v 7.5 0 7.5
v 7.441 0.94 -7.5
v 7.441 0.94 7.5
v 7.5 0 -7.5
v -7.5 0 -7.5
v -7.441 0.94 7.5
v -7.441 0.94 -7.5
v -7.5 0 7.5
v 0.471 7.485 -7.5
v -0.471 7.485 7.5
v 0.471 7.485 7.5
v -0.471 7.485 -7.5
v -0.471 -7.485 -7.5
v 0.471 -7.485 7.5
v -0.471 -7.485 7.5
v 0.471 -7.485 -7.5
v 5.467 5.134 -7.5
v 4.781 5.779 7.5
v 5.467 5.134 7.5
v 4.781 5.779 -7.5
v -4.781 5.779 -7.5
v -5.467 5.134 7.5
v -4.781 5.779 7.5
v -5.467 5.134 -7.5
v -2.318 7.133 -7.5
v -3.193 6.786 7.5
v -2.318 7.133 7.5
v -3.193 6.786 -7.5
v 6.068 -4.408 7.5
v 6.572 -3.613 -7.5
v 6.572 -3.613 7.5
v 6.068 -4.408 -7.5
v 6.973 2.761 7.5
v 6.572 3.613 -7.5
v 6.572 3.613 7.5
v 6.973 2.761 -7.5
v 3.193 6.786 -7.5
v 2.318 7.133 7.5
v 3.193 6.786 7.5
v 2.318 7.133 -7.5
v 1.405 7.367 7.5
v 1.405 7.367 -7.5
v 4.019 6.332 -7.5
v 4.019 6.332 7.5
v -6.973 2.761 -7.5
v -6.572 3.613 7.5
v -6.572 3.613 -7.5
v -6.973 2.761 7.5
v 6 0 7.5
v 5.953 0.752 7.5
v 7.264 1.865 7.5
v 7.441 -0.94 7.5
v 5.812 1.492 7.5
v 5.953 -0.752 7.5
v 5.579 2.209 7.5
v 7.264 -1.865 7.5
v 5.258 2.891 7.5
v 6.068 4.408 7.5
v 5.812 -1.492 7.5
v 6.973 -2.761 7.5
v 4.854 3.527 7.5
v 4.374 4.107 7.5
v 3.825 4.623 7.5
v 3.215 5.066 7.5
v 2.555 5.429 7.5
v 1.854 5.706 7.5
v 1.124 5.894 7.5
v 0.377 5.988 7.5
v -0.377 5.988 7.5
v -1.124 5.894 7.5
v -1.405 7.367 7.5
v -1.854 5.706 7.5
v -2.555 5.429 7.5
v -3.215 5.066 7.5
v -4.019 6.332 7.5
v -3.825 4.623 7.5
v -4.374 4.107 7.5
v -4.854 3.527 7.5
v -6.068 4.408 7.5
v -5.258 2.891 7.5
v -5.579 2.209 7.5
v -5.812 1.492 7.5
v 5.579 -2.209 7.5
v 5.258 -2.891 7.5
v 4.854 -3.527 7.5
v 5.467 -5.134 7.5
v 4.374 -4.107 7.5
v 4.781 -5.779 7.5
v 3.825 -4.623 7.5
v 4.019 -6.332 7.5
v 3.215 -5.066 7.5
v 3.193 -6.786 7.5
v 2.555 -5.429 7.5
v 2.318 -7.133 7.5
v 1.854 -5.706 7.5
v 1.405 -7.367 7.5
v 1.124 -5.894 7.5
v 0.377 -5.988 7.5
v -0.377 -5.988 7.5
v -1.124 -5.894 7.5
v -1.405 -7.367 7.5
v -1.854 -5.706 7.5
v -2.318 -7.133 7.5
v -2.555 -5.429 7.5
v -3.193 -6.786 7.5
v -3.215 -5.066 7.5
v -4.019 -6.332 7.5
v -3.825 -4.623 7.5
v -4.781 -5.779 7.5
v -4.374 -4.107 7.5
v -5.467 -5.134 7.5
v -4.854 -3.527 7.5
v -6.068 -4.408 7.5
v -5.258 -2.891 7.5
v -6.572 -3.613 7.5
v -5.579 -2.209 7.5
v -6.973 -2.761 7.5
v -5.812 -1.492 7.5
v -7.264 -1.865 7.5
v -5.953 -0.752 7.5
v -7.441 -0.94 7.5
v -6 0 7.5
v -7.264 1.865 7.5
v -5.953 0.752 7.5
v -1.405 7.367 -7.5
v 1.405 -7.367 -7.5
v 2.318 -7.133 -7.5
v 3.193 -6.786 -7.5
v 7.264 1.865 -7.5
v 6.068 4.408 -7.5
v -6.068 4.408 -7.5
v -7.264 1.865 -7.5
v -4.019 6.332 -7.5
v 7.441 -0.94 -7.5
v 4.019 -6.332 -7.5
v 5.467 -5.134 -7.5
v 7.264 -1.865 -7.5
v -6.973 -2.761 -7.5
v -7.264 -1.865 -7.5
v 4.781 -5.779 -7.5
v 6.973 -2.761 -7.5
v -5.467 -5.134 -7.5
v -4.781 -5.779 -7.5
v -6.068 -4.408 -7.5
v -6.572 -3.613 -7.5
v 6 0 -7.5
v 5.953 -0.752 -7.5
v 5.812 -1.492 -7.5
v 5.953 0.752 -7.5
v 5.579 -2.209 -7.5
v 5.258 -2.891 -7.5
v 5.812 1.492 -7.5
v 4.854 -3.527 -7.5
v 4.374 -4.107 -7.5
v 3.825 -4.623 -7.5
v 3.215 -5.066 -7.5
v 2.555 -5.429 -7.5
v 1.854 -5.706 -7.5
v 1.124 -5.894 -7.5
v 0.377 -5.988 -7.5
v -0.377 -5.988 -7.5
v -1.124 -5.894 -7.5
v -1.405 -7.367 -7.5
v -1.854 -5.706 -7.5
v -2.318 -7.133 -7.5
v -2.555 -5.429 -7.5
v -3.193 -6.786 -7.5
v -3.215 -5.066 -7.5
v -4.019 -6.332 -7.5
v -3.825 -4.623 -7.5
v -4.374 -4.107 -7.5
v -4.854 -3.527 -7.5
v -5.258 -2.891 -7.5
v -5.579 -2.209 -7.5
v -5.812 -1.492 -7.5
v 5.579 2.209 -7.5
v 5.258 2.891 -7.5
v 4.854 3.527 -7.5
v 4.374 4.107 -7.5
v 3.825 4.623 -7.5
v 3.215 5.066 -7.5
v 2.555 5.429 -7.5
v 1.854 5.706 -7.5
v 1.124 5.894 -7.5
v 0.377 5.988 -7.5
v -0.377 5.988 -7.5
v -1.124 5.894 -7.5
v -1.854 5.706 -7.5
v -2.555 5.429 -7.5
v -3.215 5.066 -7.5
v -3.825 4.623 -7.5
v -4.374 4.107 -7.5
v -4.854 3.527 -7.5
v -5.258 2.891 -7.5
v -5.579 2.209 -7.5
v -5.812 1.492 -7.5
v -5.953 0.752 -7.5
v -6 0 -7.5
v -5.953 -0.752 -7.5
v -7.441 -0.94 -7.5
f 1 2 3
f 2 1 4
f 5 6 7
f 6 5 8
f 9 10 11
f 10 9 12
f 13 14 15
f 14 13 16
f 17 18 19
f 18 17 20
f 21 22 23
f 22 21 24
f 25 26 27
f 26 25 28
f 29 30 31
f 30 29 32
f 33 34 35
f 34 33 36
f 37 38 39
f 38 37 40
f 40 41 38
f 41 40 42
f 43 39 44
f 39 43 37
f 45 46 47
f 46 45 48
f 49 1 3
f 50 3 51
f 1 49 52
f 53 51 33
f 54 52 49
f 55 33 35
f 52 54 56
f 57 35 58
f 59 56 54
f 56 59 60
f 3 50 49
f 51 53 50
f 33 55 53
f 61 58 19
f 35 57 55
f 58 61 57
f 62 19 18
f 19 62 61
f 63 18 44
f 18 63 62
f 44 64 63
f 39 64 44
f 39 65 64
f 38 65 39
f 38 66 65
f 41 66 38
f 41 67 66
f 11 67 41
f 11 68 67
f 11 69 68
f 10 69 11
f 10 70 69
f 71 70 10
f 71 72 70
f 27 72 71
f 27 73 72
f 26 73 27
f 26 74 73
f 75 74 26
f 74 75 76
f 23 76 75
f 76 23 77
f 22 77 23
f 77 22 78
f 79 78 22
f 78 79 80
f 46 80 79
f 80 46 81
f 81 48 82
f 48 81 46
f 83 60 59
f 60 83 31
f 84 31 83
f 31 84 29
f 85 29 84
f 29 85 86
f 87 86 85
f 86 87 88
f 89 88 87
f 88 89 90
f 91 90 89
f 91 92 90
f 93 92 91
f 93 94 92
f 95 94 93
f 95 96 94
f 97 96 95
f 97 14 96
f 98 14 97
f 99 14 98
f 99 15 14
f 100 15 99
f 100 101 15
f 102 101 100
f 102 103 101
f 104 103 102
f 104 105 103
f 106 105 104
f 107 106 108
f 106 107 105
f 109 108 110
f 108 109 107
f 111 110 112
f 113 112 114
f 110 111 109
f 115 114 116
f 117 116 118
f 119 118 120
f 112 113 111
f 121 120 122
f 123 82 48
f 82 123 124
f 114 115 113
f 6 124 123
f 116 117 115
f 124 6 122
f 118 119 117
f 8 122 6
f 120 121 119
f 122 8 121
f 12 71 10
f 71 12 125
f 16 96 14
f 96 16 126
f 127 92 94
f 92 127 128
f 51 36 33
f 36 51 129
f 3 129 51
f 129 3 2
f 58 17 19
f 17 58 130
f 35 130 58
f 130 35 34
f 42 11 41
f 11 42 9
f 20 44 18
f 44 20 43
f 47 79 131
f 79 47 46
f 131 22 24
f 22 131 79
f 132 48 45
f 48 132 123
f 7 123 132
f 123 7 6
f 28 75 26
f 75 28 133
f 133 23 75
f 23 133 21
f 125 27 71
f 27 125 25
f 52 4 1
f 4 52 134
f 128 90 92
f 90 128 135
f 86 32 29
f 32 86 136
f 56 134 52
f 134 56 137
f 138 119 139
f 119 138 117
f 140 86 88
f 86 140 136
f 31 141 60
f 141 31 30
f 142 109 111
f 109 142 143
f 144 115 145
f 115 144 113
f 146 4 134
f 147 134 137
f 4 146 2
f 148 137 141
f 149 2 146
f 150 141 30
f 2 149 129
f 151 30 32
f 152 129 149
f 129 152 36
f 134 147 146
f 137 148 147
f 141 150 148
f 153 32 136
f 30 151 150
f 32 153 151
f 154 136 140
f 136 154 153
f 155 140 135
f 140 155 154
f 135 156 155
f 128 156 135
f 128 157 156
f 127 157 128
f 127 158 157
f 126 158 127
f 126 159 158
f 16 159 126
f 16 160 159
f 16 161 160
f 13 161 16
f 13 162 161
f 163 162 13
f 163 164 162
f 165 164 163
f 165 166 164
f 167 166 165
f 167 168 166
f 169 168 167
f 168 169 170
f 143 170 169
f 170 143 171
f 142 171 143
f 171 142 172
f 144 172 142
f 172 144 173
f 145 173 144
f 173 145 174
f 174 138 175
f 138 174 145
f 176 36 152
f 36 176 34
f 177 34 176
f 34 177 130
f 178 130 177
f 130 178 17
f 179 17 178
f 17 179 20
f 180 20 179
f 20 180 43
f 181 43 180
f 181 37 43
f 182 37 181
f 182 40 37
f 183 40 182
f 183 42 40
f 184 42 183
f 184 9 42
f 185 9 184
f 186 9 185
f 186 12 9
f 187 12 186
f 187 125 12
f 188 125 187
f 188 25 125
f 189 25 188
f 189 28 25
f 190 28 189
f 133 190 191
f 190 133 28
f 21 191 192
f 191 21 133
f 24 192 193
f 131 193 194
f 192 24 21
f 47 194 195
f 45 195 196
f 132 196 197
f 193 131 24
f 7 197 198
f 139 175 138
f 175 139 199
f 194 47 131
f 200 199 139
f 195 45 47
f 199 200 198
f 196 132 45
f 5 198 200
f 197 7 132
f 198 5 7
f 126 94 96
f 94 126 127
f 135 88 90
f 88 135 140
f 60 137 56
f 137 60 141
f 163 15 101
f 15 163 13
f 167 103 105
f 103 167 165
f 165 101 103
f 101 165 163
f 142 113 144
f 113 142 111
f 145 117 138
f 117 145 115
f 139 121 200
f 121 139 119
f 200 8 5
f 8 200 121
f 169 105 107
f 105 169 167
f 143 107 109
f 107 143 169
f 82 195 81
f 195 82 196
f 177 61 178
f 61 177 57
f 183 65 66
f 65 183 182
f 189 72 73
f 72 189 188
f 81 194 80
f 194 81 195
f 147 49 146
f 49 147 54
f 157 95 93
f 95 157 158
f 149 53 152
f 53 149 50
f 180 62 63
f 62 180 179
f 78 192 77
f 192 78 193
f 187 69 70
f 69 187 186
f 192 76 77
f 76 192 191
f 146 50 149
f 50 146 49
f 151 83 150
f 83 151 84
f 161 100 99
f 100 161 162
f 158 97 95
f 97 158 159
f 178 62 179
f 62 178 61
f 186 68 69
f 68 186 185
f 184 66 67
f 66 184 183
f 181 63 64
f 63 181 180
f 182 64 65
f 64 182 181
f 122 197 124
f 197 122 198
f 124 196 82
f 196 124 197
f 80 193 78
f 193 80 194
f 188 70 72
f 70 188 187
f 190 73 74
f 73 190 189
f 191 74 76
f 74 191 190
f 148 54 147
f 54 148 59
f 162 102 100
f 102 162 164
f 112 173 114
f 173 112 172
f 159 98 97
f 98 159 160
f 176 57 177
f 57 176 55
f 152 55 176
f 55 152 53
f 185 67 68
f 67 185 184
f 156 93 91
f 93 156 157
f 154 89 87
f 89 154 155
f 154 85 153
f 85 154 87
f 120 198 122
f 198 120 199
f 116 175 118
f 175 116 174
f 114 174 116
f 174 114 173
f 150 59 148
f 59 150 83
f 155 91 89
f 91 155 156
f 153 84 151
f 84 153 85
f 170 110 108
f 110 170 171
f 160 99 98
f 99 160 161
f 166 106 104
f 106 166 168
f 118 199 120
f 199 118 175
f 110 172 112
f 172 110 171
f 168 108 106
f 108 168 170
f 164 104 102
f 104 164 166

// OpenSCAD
$fn = 50;


difference() {
	union() {
		translate(v = [0, 0, -7.5000000000]) {
			cylinder(h = 15, r = 7.5000000000);
		}
	}
	union() {
		translate(v = [0, 0, -100.0000000000]) {
			cylinder(h = 200, r = 6);
		}
	}
}
